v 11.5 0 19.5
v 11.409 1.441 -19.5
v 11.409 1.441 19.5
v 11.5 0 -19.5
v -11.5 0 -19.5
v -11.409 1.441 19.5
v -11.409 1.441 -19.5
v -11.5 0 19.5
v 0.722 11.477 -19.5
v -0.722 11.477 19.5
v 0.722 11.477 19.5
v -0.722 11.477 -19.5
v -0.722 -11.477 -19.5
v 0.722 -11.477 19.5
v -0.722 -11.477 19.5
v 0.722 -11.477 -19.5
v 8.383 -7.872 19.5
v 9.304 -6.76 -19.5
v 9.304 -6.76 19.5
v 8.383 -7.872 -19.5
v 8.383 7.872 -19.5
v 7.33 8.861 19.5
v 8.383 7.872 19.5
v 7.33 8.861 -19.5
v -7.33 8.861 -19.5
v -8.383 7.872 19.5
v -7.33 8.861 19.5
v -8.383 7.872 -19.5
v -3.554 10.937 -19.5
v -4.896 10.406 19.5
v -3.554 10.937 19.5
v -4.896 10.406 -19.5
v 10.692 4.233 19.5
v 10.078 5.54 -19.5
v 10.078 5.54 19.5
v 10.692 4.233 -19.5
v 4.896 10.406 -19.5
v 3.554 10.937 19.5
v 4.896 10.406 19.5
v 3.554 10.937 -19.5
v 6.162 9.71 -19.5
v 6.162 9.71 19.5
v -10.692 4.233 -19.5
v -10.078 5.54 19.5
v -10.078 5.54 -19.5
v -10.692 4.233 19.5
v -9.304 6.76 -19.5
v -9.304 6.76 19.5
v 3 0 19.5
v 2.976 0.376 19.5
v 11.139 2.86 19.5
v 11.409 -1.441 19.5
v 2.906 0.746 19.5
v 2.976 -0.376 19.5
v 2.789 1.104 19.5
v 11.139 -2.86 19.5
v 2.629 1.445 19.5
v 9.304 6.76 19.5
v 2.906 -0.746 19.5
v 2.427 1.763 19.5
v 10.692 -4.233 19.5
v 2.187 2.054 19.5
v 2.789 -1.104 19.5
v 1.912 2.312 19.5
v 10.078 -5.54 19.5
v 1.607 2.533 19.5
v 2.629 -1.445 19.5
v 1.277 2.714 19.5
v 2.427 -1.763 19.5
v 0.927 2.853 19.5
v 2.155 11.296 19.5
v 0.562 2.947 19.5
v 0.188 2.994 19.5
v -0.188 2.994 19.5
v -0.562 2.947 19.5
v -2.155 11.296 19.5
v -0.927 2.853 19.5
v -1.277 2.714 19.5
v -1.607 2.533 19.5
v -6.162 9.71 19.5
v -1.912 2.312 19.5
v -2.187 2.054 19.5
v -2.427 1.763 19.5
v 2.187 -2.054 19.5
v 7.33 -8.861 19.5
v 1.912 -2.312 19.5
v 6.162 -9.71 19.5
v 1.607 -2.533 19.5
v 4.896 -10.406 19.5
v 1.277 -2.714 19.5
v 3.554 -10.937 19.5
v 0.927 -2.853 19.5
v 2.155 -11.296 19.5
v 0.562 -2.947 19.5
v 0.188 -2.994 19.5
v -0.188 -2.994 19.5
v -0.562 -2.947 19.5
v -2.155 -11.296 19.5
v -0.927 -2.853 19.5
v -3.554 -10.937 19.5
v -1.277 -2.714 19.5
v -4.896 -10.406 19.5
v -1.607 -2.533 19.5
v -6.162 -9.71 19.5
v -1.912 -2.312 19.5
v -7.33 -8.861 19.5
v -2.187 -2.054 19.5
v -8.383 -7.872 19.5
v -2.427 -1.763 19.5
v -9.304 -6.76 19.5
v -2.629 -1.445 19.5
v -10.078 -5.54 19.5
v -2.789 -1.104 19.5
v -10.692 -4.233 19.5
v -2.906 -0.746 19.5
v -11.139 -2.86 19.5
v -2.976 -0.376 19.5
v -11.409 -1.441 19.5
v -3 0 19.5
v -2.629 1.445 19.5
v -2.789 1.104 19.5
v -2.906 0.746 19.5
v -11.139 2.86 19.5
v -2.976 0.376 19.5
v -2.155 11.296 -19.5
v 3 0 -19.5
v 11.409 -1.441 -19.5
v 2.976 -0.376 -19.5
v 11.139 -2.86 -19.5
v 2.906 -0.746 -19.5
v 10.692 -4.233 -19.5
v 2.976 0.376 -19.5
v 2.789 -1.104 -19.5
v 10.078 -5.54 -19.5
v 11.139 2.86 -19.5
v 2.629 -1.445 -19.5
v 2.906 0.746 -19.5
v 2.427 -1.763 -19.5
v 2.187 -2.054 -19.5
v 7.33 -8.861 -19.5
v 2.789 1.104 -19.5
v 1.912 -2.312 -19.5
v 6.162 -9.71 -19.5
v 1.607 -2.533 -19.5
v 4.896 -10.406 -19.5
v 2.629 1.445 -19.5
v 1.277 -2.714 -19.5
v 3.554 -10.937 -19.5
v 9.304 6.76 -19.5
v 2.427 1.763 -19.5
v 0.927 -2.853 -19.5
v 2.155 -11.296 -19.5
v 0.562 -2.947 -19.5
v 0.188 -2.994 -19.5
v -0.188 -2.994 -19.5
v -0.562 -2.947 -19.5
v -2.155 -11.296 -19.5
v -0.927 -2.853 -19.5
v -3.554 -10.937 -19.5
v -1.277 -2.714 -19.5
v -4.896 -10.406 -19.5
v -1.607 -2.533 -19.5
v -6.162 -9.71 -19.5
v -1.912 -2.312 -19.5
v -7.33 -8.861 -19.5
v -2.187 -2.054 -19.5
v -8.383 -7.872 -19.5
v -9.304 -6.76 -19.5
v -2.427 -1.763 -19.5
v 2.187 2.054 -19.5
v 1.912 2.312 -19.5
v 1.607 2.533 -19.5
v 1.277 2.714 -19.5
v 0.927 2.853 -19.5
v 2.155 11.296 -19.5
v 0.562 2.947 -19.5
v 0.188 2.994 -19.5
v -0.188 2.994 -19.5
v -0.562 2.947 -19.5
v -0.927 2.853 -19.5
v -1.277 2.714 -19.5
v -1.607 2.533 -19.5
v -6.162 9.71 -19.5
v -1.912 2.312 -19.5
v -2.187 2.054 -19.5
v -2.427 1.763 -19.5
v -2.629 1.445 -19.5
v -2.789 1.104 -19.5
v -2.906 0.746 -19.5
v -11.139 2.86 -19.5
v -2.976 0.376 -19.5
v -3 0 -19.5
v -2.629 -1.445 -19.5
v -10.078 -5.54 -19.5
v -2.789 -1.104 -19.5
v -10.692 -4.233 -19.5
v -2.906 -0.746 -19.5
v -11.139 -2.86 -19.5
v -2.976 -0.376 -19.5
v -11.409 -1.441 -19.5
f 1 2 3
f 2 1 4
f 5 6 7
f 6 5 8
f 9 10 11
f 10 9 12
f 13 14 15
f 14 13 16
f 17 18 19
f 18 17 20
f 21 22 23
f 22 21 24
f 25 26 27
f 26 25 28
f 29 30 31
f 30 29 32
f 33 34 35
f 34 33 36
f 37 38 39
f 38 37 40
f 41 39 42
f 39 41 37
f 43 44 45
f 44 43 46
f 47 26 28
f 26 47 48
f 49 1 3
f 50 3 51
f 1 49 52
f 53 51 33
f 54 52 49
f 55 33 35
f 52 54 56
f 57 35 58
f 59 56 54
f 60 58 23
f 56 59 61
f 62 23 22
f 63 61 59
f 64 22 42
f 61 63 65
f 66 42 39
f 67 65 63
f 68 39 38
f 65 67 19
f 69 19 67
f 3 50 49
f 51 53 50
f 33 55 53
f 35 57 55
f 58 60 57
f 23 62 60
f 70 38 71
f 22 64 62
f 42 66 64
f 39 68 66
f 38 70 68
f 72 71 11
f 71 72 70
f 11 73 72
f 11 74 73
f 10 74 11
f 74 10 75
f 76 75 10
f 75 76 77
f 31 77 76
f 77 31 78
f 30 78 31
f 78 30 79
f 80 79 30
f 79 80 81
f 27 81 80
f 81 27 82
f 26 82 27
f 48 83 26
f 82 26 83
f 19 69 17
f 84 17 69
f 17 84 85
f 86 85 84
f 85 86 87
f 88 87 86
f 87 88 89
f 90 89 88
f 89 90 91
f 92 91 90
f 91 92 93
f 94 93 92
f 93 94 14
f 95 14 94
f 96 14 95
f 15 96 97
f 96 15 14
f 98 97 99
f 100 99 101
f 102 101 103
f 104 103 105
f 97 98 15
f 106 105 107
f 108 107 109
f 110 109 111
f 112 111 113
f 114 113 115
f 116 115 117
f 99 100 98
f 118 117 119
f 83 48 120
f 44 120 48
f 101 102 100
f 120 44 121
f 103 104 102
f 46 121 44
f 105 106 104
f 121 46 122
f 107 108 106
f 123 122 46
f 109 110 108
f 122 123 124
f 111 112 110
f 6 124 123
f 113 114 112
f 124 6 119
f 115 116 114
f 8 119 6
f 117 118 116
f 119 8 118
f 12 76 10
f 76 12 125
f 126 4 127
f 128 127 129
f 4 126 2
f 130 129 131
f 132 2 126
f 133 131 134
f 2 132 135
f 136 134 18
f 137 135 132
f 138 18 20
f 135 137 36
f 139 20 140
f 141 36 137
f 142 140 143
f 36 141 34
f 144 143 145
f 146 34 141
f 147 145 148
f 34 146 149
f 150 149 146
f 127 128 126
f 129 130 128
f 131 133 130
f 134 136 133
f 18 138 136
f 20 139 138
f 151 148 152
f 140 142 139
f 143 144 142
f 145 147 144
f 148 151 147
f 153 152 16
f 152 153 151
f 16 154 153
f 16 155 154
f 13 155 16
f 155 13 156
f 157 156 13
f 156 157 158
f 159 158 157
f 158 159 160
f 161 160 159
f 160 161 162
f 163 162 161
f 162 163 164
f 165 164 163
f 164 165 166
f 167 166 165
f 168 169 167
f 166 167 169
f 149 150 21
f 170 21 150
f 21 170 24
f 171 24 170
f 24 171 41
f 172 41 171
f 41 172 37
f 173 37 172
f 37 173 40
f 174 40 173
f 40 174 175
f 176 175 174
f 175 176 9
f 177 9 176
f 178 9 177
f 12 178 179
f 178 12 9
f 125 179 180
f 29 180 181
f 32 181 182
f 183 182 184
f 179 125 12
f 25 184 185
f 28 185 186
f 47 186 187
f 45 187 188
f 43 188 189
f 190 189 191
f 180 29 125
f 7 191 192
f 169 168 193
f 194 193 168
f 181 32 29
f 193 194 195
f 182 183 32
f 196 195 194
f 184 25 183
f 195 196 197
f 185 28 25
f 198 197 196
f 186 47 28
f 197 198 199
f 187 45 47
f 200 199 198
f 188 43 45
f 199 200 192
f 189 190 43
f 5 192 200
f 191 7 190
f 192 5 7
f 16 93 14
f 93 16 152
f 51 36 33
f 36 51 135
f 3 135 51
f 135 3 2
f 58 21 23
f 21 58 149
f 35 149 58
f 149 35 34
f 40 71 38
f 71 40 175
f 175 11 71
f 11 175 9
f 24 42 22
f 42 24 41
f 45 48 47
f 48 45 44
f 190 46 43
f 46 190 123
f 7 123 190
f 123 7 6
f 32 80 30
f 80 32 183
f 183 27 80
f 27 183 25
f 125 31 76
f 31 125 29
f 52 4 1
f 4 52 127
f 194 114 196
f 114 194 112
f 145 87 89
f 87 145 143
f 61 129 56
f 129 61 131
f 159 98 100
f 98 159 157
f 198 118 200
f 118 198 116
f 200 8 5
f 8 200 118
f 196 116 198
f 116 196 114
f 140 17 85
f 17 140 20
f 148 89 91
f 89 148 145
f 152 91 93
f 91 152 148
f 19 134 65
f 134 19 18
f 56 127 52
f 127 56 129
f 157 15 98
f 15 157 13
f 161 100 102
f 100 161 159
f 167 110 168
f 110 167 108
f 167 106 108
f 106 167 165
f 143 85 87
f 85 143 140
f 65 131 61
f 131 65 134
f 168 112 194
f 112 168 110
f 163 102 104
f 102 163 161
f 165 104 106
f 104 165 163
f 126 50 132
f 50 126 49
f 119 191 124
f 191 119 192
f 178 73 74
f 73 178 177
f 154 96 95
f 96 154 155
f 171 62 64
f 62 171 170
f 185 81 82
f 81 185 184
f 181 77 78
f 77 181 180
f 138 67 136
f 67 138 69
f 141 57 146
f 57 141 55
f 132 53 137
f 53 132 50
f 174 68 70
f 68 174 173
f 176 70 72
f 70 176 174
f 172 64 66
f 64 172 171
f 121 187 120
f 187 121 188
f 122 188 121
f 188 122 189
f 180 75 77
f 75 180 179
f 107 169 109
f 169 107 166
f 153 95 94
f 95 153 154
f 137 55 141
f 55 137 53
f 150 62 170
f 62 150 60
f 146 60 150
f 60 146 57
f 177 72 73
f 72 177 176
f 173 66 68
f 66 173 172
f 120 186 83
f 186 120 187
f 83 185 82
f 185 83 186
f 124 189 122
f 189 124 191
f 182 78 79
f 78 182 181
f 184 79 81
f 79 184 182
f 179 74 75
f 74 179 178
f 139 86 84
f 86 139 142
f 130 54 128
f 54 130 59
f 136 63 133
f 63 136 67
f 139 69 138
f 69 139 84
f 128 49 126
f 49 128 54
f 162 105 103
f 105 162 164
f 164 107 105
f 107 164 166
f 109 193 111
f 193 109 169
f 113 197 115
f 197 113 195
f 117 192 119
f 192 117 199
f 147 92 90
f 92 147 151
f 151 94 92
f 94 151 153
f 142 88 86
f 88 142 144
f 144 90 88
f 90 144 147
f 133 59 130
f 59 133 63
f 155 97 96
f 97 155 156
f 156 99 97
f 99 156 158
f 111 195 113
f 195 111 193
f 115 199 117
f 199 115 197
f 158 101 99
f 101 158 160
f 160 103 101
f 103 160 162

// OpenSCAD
$fn = 50;


difference() {
	union() {
		translate(v = [0, 0, -19.5000000000]) {
			cylinder(h = 39, r = 11.5000000000);
		}
	}
	union() {
		translate(v = [0, 0, -100.0000000000]) {
			cylinder(h = 200, r = 3);
		}
	}
}
